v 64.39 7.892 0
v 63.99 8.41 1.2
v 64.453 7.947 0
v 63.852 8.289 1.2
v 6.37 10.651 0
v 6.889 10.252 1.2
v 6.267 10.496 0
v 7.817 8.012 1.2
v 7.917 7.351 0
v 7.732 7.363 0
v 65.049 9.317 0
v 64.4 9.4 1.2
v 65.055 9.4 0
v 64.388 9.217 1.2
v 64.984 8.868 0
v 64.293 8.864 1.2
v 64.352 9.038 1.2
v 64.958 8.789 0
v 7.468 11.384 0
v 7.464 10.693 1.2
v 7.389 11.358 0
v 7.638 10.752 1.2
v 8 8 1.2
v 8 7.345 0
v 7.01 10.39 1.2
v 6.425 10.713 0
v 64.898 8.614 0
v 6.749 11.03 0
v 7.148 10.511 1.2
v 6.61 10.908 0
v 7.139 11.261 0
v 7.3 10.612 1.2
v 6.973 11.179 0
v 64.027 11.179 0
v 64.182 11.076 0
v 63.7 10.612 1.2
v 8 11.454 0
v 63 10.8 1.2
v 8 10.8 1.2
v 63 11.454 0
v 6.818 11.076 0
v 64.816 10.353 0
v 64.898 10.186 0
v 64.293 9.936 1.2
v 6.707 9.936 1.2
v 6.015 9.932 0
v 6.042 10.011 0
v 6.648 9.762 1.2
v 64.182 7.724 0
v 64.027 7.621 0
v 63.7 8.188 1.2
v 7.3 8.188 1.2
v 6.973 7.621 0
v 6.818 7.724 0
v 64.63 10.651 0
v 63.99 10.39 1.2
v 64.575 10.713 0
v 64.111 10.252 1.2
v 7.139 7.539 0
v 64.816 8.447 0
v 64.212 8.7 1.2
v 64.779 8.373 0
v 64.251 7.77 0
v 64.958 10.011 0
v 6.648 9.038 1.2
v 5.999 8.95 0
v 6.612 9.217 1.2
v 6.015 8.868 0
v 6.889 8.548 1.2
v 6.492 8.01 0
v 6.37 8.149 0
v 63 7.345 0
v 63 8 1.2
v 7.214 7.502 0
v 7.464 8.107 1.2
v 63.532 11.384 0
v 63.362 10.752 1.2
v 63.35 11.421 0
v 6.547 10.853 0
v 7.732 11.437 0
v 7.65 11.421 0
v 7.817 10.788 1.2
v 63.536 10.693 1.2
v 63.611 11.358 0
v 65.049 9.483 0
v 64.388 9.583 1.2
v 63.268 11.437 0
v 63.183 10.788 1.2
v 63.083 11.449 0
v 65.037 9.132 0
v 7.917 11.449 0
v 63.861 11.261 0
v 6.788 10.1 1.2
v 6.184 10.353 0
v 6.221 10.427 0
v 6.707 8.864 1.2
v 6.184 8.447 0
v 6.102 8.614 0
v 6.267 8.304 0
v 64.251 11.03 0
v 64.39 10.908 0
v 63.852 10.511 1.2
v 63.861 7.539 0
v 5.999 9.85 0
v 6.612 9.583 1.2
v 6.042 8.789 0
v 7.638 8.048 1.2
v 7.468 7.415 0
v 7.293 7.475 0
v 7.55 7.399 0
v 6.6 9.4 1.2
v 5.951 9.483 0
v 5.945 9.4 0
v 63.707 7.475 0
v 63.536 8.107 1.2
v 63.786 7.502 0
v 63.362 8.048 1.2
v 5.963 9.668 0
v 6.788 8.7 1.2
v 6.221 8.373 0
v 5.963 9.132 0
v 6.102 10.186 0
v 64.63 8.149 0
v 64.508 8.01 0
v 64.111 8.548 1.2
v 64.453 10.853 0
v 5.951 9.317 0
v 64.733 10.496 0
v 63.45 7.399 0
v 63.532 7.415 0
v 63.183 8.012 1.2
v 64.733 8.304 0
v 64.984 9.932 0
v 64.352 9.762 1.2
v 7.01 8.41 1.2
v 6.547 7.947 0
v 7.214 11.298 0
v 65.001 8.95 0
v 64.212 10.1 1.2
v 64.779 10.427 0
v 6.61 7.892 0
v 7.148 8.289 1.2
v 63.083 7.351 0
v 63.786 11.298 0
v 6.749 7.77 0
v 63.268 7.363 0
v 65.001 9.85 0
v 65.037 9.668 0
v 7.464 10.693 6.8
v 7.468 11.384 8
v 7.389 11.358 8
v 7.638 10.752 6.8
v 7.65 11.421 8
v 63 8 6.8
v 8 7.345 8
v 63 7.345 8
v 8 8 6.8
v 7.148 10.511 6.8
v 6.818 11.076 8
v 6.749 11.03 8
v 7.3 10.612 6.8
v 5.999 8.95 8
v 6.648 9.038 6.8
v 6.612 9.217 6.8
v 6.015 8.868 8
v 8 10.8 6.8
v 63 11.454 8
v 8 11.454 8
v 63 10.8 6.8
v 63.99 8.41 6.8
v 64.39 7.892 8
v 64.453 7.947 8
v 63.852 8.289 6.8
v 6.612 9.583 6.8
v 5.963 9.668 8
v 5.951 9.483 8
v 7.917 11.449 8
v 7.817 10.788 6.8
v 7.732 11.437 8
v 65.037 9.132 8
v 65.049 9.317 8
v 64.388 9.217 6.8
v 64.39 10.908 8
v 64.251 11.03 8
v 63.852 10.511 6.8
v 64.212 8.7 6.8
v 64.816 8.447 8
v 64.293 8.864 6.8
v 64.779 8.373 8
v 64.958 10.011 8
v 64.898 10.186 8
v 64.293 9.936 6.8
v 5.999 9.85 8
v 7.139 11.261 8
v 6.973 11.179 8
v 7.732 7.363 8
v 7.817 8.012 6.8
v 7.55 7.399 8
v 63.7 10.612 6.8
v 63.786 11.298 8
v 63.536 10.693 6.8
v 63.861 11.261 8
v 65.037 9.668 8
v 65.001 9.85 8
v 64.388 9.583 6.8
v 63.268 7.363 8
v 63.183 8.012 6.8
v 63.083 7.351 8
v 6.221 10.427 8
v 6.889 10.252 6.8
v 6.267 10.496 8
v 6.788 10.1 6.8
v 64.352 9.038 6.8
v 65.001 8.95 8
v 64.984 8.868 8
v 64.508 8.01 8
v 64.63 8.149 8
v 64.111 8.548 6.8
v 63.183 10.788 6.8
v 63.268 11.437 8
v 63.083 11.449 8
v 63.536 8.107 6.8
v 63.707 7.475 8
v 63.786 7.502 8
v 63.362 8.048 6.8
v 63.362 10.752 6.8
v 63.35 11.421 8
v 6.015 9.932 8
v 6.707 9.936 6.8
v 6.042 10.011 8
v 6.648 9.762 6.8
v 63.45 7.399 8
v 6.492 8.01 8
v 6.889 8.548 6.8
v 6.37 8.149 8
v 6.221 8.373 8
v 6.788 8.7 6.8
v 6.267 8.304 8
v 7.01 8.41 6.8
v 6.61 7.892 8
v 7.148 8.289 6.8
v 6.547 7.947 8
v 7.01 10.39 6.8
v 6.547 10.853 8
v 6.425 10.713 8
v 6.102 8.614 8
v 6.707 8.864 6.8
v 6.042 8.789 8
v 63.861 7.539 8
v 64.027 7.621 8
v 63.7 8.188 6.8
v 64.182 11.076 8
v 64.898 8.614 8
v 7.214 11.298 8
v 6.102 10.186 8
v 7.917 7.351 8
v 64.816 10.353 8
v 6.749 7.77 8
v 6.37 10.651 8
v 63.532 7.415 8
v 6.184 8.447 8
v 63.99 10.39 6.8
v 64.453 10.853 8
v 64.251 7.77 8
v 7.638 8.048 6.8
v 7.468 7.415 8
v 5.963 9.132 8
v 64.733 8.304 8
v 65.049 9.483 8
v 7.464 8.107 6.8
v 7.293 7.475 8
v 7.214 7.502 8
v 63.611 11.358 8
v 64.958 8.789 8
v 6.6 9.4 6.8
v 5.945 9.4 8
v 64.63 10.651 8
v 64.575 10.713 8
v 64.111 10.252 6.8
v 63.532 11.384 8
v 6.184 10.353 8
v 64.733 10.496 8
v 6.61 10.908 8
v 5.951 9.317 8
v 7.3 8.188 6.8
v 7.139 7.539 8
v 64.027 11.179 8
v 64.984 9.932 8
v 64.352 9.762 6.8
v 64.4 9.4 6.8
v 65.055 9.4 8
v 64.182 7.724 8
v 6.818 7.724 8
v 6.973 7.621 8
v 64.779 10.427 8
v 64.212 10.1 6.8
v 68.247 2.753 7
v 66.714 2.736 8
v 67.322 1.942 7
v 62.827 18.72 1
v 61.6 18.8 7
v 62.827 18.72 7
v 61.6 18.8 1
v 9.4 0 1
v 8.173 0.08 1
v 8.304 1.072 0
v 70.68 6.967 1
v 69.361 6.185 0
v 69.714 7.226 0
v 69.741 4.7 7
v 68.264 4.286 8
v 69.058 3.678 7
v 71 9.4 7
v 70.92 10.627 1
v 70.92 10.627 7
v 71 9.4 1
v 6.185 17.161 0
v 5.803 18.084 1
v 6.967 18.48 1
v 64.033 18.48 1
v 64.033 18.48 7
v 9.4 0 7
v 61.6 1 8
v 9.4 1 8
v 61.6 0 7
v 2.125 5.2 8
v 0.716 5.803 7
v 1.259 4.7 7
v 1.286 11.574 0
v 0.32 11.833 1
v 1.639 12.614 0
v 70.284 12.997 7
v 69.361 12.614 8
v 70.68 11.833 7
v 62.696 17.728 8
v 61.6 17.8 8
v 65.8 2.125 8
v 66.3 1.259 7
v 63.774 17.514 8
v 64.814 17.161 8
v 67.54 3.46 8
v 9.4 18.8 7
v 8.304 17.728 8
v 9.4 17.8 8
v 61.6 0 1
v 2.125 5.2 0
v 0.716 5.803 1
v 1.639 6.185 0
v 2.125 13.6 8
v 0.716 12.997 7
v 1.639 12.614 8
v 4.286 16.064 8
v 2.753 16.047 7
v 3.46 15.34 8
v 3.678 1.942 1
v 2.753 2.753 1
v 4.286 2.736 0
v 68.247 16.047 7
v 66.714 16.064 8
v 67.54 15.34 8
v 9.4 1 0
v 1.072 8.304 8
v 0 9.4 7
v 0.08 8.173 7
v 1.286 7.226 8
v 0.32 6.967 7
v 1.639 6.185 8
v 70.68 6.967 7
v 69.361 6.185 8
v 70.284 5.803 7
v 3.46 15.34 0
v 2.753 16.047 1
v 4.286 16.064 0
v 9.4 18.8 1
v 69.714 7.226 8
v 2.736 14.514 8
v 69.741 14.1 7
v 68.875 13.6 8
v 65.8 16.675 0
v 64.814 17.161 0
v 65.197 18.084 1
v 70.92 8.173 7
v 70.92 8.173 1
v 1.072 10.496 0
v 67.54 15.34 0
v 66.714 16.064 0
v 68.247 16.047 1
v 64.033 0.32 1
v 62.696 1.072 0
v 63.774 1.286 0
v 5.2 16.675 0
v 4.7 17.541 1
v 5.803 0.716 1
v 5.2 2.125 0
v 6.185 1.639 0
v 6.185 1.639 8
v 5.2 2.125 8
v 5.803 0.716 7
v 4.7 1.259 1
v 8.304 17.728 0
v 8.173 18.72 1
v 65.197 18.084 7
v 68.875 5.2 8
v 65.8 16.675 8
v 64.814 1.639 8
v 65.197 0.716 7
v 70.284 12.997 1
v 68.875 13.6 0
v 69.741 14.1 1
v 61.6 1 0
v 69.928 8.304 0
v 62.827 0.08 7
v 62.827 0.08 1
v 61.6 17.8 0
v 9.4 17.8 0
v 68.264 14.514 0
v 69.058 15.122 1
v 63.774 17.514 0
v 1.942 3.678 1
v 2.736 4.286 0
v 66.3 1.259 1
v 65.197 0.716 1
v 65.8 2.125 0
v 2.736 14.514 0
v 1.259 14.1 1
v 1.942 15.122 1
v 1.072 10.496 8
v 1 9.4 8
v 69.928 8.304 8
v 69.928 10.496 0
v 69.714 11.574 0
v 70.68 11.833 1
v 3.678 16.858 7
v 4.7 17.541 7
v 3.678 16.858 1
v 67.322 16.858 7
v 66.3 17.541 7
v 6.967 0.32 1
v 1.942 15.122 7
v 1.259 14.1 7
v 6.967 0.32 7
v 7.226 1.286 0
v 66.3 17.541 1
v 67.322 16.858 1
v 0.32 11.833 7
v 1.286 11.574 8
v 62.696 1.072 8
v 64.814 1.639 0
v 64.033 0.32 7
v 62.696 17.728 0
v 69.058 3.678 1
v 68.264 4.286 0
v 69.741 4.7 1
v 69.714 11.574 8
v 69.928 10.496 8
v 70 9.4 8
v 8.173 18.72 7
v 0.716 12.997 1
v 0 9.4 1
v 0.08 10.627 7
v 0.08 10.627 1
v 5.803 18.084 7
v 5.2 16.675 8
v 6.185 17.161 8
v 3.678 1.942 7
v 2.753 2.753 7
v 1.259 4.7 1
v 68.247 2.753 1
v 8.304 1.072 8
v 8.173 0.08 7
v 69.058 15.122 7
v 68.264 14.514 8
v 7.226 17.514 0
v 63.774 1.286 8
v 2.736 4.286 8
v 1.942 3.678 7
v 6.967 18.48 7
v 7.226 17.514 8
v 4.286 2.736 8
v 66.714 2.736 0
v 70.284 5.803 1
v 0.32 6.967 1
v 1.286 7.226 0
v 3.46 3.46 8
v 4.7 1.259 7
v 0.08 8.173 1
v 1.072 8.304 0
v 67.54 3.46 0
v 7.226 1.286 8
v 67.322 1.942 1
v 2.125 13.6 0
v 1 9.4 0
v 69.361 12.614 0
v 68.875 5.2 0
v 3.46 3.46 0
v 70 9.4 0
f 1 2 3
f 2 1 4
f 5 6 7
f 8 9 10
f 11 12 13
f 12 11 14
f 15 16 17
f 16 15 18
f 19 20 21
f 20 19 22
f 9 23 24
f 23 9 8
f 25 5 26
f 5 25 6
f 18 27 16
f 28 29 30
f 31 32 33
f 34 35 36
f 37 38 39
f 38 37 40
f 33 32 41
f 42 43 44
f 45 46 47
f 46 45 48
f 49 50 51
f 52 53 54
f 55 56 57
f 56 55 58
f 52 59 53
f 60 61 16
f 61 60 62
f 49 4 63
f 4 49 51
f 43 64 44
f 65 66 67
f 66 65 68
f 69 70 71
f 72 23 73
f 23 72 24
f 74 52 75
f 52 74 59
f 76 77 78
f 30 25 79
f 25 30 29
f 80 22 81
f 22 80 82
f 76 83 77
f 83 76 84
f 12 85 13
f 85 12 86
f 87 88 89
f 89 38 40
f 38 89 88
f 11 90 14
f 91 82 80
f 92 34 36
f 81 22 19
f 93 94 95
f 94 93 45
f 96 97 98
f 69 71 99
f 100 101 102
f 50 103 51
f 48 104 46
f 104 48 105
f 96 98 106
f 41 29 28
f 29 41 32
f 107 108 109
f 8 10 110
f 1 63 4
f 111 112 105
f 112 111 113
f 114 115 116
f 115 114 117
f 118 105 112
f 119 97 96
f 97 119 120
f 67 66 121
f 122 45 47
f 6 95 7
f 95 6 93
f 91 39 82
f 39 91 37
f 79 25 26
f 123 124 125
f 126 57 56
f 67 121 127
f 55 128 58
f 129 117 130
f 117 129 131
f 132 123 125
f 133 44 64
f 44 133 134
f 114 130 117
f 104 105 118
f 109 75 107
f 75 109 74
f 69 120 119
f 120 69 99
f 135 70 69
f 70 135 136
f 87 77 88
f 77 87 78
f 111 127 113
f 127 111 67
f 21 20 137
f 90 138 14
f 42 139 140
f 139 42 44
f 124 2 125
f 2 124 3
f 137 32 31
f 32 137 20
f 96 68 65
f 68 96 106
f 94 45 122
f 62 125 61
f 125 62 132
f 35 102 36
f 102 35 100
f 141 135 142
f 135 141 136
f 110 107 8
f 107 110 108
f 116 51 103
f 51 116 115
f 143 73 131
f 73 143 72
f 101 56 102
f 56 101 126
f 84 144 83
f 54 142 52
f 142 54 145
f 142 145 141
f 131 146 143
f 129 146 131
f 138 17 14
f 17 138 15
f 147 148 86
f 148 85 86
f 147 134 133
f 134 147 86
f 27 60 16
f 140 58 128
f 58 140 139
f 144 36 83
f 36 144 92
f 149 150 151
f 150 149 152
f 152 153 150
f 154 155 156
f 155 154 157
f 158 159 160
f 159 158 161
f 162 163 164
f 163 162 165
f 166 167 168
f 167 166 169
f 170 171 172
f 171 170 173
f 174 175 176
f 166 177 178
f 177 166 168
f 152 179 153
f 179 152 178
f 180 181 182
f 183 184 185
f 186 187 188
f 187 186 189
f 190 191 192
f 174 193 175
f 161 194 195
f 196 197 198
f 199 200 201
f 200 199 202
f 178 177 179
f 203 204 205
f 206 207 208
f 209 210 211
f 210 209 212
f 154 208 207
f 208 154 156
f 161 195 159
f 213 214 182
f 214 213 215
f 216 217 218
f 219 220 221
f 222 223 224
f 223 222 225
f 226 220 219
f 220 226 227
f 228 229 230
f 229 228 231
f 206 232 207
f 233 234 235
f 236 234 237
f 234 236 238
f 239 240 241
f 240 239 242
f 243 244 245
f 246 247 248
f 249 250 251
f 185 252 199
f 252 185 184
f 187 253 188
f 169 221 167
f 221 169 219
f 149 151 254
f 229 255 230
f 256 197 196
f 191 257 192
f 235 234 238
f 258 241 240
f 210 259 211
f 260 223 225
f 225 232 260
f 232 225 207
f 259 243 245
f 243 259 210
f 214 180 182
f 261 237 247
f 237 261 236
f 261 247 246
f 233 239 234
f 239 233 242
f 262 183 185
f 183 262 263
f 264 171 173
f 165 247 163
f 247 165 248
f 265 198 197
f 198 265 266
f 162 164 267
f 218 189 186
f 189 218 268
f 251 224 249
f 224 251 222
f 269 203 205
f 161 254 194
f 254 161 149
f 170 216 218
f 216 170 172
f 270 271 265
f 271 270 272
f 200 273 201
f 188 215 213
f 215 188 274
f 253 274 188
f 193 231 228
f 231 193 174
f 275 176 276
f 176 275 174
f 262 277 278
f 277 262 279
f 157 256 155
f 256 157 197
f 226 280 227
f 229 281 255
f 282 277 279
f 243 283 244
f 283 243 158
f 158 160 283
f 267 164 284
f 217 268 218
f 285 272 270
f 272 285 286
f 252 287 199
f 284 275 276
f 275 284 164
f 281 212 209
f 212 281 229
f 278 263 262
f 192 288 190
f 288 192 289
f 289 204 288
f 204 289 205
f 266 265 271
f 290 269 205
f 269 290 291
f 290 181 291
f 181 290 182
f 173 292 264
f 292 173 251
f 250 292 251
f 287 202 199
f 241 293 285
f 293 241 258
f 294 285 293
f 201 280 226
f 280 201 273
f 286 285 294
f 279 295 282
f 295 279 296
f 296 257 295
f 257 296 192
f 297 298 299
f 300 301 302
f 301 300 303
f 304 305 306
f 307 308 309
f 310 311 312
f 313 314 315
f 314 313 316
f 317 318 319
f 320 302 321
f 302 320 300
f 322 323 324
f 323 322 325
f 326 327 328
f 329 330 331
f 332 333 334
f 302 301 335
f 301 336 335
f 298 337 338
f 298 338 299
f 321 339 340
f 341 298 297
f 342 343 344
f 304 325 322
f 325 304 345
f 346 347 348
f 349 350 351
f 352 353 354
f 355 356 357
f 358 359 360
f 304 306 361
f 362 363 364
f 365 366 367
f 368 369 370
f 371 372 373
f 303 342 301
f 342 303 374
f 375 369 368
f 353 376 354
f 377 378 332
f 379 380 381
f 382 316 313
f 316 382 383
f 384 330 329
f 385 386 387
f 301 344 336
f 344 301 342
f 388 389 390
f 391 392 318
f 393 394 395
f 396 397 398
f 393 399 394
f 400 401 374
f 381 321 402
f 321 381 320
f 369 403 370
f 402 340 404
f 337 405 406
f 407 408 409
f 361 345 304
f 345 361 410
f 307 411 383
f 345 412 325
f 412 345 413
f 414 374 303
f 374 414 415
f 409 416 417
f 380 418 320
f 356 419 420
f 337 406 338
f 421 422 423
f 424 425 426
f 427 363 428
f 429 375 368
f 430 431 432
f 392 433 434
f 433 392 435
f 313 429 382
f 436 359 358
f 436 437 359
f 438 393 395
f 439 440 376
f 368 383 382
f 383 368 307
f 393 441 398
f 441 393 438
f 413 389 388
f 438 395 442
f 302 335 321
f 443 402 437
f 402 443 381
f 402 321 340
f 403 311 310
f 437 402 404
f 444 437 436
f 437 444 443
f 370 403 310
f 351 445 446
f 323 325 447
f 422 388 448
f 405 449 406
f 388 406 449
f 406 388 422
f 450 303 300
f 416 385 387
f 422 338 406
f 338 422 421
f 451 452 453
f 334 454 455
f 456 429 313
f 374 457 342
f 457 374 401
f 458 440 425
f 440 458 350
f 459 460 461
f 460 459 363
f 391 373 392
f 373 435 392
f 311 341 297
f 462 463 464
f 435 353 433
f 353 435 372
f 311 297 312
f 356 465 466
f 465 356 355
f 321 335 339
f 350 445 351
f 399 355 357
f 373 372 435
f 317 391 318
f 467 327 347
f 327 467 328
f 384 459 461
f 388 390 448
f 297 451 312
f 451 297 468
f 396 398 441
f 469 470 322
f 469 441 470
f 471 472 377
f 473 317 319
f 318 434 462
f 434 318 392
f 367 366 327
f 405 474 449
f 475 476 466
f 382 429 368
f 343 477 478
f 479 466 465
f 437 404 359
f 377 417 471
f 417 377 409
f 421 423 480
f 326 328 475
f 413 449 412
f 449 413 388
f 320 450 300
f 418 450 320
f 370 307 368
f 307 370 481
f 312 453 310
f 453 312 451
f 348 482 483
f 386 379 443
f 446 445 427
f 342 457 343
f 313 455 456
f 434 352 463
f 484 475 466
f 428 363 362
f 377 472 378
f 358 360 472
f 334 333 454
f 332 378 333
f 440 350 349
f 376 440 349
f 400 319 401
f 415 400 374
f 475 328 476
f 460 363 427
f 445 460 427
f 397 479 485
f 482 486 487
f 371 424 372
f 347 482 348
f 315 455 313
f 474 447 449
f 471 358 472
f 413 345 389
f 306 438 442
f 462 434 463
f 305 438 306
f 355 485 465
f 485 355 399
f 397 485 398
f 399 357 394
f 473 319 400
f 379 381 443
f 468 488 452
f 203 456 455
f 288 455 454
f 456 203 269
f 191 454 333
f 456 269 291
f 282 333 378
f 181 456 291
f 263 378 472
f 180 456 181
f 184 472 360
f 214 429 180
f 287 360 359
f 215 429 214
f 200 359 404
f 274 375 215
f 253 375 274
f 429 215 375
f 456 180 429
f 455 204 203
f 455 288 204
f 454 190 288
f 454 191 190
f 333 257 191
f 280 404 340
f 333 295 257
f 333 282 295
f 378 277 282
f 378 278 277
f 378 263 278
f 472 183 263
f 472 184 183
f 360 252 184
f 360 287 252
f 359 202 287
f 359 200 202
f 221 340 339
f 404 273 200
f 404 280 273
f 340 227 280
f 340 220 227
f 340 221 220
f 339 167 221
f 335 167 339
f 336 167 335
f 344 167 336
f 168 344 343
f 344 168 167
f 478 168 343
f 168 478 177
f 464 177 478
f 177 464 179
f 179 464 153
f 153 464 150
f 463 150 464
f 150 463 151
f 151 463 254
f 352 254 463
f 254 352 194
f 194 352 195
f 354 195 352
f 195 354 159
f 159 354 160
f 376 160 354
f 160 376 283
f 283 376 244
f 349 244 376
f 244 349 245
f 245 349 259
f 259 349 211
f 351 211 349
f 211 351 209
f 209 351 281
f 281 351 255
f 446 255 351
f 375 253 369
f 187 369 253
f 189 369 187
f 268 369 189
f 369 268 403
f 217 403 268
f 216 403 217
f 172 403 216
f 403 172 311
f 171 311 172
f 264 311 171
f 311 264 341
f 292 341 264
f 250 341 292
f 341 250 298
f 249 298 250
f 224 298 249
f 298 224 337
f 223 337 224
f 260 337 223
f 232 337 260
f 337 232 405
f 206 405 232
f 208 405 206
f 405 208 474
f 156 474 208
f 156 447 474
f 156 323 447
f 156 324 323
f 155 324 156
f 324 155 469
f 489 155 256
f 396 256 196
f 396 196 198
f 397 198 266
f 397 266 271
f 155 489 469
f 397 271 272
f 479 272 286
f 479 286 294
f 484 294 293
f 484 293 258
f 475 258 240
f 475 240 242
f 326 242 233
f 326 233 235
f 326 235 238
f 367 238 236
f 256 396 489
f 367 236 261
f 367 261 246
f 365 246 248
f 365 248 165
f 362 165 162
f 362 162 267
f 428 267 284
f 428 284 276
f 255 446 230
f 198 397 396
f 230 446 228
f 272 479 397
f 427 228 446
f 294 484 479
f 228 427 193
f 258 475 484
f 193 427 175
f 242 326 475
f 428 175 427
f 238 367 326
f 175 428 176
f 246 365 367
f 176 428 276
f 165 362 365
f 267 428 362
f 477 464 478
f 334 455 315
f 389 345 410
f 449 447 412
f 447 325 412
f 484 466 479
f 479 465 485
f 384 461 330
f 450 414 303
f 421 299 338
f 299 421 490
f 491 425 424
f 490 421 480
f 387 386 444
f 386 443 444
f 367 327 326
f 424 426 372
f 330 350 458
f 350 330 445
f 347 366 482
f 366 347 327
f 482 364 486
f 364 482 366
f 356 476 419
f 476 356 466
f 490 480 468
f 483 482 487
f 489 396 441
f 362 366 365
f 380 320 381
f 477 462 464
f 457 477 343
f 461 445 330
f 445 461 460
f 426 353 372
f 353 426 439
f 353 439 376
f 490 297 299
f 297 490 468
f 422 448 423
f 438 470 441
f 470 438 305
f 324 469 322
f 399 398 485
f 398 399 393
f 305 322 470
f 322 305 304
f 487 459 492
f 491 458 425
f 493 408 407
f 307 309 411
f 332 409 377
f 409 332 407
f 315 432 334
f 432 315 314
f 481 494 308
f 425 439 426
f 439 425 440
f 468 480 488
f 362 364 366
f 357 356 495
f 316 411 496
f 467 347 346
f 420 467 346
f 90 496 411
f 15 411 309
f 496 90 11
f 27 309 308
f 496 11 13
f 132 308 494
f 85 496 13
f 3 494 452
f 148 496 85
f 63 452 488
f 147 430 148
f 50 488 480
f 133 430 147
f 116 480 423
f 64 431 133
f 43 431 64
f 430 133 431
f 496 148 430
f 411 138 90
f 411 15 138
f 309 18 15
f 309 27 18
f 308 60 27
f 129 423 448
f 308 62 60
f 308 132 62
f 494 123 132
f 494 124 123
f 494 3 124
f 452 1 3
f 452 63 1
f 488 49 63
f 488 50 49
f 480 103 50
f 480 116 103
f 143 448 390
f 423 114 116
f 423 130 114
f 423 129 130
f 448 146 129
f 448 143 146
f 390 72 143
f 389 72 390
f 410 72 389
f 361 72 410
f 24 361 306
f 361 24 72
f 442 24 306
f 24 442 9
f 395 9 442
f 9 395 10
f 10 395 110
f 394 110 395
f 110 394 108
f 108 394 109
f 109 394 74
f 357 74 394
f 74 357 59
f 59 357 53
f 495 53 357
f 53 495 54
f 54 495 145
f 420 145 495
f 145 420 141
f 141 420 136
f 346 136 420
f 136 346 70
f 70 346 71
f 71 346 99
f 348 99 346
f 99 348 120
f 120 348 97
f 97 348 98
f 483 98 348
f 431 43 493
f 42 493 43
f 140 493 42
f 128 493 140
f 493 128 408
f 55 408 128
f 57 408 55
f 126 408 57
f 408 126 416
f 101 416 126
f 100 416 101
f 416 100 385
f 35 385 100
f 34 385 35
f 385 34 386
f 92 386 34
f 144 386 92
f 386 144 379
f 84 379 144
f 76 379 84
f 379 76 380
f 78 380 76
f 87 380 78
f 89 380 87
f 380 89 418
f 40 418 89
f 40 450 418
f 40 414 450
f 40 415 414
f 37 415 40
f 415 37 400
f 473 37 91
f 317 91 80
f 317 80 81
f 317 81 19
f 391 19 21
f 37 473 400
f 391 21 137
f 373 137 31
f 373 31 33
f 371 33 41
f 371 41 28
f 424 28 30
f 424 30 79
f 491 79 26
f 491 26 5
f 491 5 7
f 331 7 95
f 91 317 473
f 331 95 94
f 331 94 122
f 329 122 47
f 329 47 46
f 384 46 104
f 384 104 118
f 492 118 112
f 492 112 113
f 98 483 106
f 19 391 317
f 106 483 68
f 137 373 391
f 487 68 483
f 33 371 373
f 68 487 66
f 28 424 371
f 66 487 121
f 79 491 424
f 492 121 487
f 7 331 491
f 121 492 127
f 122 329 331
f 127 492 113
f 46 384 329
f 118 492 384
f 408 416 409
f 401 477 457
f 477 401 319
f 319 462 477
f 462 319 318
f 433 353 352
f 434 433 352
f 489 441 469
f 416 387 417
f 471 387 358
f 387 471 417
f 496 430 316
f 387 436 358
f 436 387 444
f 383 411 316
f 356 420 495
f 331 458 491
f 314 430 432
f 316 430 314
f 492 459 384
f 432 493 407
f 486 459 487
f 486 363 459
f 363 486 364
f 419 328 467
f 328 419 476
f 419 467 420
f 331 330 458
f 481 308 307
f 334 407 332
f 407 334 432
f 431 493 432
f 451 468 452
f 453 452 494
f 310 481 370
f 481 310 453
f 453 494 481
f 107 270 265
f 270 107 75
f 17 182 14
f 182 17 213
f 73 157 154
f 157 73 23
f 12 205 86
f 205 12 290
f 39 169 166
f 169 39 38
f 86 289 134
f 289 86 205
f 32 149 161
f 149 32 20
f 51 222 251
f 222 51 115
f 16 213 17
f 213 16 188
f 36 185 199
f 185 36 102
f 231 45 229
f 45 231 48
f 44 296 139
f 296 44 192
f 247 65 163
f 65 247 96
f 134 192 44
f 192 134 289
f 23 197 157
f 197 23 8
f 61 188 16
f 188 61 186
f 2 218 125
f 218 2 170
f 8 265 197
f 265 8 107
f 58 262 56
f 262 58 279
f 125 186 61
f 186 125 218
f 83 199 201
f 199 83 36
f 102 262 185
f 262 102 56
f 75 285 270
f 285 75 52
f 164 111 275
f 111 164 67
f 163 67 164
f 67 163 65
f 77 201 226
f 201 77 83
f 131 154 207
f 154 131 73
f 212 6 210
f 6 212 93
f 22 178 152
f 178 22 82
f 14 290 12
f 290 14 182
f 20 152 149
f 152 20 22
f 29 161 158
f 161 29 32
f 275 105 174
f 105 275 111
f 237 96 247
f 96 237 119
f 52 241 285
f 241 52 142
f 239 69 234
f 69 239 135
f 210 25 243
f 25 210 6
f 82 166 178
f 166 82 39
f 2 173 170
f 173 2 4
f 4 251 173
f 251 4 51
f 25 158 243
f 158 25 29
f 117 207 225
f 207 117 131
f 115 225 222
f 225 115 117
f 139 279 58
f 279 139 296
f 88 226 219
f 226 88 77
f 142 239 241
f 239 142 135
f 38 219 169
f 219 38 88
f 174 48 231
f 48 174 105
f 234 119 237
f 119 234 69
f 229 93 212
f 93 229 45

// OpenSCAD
// Tube Squeezer — get the last bit out of toothpaste, creams, glue, paint,
// tomato paste… Thread the flat end of the tube through the slot and roll.
// Print flat (as rendered).

/* [Size] */
// Width of the flattened tube end (mm). Toothpaste is ~50–55.
tube_w = 55;            // [20:1:120]
// Slot gap (mm). 2.5–3 works for most tubes.
slot_gap = 2.8;         // [1.5:0.1:6]
// Thickness of the squeezer (mm)
thickness = 8;          // [5:1:15]

/* [Hidden] */
$fn = 48;
L = tube_w + 16;
W = slot_gap + 16;

difference() {
    hull()
        for (x = [W / 2, L - W / 2])
            translate([x, W / 2, 0]) {
                cylinder(d = W - 2, h = thickness);
                translate([0, 0, 1]) cylinder(d = W, h = thickness - 2);
            }
    // slot with rounded ends and flared entry so the tube threads easily
    hull()
        for (x = [8, L - 8])
            translate([x, W / 2, -1]) cylinder(d = slot_gap, h = thickness + 2);
    for (z = [-1, thickness - 1.2])
        hull()
            for (x = [8, L - 8])
                translate([x, W / 2, z])
                    cylinder(d1 = z < 0 ? slot_gap + 2.4 : slot_gap,
                             d2 = z < 0 ? slot_gap : slot_gap + 2.4, h = 2.2);
}
